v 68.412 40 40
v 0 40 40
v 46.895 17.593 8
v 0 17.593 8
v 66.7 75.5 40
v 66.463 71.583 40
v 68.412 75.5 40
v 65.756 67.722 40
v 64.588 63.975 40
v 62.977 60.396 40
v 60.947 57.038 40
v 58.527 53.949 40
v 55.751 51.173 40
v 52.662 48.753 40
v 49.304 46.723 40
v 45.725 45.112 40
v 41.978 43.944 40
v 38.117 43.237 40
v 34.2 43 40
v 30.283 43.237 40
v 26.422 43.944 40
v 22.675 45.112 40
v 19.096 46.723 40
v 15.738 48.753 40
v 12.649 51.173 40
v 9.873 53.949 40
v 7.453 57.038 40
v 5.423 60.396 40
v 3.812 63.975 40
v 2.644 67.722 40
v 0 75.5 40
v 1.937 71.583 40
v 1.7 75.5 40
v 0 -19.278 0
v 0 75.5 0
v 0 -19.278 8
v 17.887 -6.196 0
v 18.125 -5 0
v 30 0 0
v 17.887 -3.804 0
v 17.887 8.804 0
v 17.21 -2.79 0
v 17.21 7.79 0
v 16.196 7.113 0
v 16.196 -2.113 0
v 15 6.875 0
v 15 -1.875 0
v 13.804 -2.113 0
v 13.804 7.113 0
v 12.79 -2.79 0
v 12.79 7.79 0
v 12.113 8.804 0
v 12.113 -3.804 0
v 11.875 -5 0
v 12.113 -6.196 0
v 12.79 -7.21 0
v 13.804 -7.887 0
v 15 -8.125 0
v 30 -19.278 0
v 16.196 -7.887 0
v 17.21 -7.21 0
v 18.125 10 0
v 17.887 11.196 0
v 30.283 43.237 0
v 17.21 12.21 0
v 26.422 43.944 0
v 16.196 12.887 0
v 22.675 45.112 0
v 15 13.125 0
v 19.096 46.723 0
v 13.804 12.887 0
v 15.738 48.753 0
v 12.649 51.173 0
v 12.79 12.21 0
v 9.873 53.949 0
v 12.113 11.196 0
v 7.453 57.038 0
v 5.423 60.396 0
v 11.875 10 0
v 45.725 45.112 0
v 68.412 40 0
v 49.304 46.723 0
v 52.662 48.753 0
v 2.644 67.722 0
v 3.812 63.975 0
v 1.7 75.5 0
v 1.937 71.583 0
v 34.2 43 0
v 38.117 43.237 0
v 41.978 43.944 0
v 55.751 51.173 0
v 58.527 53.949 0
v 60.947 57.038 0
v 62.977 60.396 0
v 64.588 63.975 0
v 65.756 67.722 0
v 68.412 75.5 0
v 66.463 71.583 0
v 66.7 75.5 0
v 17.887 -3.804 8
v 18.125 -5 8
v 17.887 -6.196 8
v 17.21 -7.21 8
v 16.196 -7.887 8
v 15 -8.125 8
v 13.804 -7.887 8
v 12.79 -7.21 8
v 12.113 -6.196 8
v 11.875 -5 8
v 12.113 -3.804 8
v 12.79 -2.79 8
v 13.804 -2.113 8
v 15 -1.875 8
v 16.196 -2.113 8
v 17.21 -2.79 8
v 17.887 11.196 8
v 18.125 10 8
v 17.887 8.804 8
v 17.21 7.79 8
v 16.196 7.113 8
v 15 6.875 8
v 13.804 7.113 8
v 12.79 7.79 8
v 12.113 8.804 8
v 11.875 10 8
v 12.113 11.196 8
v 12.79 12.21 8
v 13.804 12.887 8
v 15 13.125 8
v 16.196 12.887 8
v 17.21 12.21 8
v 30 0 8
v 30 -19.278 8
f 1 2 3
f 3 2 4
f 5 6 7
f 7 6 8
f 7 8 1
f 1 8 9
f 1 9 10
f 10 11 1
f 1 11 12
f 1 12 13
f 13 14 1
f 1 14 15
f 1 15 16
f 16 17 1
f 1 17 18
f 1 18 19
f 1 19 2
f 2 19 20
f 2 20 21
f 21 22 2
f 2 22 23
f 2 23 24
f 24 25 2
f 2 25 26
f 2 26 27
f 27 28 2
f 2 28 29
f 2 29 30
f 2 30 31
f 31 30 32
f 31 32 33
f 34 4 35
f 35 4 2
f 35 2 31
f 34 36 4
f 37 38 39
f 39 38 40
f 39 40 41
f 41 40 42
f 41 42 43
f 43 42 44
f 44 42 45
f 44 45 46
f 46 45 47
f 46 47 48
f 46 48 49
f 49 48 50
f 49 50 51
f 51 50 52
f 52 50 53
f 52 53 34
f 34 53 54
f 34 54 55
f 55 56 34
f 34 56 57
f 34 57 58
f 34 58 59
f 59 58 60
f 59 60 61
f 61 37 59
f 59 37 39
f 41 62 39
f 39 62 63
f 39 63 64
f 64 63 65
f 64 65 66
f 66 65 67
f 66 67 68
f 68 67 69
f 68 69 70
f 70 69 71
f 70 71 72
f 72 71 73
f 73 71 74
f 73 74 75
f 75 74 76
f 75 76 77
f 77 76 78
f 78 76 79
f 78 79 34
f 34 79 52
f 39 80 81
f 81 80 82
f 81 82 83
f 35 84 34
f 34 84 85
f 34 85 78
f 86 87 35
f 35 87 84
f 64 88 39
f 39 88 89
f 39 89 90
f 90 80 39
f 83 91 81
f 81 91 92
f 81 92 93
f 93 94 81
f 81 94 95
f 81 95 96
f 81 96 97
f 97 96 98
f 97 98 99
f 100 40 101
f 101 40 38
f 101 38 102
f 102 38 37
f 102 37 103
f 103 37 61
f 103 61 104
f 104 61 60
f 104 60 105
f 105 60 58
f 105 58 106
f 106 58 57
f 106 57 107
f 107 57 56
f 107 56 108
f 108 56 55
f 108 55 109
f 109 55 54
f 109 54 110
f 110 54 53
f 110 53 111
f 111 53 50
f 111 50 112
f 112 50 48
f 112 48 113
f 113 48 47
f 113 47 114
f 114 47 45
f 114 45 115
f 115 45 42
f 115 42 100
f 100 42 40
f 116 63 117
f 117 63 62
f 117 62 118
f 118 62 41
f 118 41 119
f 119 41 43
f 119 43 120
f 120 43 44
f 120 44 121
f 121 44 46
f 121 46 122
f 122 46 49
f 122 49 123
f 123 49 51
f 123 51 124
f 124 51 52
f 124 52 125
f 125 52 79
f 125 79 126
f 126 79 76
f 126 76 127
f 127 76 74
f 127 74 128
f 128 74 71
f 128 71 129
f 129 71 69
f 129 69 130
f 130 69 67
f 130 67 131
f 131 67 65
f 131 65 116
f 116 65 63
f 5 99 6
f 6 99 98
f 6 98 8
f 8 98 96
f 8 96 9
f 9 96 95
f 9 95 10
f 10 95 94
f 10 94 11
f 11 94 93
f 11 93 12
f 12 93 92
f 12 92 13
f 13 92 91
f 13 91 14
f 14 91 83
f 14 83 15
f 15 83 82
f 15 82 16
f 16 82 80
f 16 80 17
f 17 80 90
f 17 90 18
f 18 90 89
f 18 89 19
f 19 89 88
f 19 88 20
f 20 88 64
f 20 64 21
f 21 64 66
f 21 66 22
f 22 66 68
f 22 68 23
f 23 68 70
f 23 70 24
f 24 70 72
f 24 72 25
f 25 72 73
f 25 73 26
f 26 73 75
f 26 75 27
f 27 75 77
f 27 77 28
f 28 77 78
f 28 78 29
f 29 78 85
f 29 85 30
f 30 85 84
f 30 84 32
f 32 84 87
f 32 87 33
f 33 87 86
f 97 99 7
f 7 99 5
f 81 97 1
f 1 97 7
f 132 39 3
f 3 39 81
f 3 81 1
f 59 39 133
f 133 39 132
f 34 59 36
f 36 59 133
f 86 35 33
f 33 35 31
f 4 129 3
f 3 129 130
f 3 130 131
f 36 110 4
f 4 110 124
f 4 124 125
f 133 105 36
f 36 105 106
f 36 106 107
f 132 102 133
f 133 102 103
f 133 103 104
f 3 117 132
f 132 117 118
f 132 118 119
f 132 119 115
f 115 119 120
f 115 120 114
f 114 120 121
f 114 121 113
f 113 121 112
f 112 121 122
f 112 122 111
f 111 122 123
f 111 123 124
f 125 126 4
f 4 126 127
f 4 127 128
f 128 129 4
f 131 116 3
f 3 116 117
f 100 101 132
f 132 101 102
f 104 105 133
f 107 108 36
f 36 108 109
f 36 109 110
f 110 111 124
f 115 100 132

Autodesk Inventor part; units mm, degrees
ref_plane "YZ Plane" through (0, 0, 0) normal (1, 0, 0) x (0, 1, 0)
ref_plane "XZ Plane" through (0, 0, 0) normal (0, 1, 0) x (-1, 0, 0)
ref_plane "XY Plane" through (0, 0, 0) normal (0, 0, 1) x (1, 0, 0)
sketch "Sketch1" plane through (0, 0, 0) normal (0, 0, 1) x (1, 0, 0)
  line L0 (0, 0) -> (30, 0)
  line L1 (30, 0) -> (30, 40)
  line L2 (30, 40) -> (0, 40)
  line L3 (0, 40) -> (0, 0)
  circle A0 centre (15, 10) radius 3.125
  circle A1 centre (15, -5) radius 3.125
  line L4 (51.875, 74) -> (51.875, 6) construction
  line L5 (51.875, 6) -> (16.525, 6) construction
  line L6 (16.525, 6) -> (16.525, 74)
  line L7 (51.875, 40) -> (34.2, 40)
  line L8 (34.2, 40) -> (34.2, 75.5)
  circle A2 centre (34.2, 75.5) radius 32.5
  line L9 (0, 40) -> (68.4124, 40)
  line L10 (68.4124, 40) -> (68.4124, 75.5)
  line L11 (68.4124, 75.5) -> (0, 75.5)
  line L12 (0, 75.5) -> (0, 40)
  line L13 (68.4124, 40) -> (30, 0)
  line L14 (0, 40) -> (30, 40)
  line L15 (30, 40) -> (30, -19.2784)
  line L16 (30, -19.2784) -> (0, -19.2784)
  line L17 (0, -19.2784) -> (0, 40)
  point P0 (15, 40)
  point P1 (34.2062, 75.5)
  point P2 (1.7, 75.5)
  point P3 (66.7, 75.5)
  dimension "d0" = 30
  dimension "d1" = 15
  dimension "d2" = 15
  dimension "d3" = 40
  dimension "d4" = 6.25
  dimension "d5" = 6.25
  dimension "d6" = 30
  dimension "d7" = 35.35
  dimension "d8" = 13.475
  dimension "d10" = 34
  dimension "d11" = 35.5
  dimension "d12" = 65
  dimension "d13" = 34.2062
  dimension "d15" = 34.2062
extrude "Extrusion1" add sketch "Sketch1" along normal blind 8 contours L3 L2 L1 L0 | L0 L15 L16 L17 | L1 L9 L7 L13 | L12 L11 A2 L6 L2 | L2 L6 A2 L8 L9 | L9 L7 L8 A2 L11 L10
extrude "Extrusion2" add sketch "Sketch1" along normal blind 40 contours L12 L11 A2 L6 L2 | L2 L6 A2 L8 L9 | L9 L7 L8 A2 L11 L10
chamfer "Chamfer1" distance 32 angle 35 1 edges at (34.2062, 40, 8) measured on face at (22.8041, 40, 18.6667)
properties part number "motorsupport"
